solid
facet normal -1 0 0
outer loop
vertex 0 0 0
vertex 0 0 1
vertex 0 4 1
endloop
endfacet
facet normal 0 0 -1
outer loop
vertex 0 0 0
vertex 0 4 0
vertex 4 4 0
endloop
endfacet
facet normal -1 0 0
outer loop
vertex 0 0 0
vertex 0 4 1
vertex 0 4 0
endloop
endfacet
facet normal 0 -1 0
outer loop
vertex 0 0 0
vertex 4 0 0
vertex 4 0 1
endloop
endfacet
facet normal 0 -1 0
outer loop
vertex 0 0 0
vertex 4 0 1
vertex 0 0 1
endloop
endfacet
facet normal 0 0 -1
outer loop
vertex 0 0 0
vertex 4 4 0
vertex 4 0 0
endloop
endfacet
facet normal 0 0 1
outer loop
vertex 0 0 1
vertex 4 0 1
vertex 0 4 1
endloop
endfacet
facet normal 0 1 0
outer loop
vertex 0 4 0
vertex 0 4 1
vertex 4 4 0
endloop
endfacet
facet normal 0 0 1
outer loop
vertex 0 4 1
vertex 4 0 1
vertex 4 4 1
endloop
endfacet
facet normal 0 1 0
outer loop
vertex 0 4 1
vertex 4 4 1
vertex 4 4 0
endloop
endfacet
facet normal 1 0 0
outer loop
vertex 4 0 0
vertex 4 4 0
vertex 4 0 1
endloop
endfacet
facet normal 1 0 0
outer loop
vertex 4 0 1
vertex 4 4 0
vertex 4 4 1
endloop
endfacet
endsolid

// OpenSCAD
/* Warning, this is a very basic generator with a lot of approximation 
input data : [VQFN, 3LW, 4x4x1.0mm, 28, , B, C04-00565B]
generated by com.zoubworld.electronics.cad.model3d.Basic
Date : Sun Feb 15 10:50:49 CET 2026
*/

//body
color("black")
translate([0,0,0])
cube([4.0,4.0,1.0], center=false);
